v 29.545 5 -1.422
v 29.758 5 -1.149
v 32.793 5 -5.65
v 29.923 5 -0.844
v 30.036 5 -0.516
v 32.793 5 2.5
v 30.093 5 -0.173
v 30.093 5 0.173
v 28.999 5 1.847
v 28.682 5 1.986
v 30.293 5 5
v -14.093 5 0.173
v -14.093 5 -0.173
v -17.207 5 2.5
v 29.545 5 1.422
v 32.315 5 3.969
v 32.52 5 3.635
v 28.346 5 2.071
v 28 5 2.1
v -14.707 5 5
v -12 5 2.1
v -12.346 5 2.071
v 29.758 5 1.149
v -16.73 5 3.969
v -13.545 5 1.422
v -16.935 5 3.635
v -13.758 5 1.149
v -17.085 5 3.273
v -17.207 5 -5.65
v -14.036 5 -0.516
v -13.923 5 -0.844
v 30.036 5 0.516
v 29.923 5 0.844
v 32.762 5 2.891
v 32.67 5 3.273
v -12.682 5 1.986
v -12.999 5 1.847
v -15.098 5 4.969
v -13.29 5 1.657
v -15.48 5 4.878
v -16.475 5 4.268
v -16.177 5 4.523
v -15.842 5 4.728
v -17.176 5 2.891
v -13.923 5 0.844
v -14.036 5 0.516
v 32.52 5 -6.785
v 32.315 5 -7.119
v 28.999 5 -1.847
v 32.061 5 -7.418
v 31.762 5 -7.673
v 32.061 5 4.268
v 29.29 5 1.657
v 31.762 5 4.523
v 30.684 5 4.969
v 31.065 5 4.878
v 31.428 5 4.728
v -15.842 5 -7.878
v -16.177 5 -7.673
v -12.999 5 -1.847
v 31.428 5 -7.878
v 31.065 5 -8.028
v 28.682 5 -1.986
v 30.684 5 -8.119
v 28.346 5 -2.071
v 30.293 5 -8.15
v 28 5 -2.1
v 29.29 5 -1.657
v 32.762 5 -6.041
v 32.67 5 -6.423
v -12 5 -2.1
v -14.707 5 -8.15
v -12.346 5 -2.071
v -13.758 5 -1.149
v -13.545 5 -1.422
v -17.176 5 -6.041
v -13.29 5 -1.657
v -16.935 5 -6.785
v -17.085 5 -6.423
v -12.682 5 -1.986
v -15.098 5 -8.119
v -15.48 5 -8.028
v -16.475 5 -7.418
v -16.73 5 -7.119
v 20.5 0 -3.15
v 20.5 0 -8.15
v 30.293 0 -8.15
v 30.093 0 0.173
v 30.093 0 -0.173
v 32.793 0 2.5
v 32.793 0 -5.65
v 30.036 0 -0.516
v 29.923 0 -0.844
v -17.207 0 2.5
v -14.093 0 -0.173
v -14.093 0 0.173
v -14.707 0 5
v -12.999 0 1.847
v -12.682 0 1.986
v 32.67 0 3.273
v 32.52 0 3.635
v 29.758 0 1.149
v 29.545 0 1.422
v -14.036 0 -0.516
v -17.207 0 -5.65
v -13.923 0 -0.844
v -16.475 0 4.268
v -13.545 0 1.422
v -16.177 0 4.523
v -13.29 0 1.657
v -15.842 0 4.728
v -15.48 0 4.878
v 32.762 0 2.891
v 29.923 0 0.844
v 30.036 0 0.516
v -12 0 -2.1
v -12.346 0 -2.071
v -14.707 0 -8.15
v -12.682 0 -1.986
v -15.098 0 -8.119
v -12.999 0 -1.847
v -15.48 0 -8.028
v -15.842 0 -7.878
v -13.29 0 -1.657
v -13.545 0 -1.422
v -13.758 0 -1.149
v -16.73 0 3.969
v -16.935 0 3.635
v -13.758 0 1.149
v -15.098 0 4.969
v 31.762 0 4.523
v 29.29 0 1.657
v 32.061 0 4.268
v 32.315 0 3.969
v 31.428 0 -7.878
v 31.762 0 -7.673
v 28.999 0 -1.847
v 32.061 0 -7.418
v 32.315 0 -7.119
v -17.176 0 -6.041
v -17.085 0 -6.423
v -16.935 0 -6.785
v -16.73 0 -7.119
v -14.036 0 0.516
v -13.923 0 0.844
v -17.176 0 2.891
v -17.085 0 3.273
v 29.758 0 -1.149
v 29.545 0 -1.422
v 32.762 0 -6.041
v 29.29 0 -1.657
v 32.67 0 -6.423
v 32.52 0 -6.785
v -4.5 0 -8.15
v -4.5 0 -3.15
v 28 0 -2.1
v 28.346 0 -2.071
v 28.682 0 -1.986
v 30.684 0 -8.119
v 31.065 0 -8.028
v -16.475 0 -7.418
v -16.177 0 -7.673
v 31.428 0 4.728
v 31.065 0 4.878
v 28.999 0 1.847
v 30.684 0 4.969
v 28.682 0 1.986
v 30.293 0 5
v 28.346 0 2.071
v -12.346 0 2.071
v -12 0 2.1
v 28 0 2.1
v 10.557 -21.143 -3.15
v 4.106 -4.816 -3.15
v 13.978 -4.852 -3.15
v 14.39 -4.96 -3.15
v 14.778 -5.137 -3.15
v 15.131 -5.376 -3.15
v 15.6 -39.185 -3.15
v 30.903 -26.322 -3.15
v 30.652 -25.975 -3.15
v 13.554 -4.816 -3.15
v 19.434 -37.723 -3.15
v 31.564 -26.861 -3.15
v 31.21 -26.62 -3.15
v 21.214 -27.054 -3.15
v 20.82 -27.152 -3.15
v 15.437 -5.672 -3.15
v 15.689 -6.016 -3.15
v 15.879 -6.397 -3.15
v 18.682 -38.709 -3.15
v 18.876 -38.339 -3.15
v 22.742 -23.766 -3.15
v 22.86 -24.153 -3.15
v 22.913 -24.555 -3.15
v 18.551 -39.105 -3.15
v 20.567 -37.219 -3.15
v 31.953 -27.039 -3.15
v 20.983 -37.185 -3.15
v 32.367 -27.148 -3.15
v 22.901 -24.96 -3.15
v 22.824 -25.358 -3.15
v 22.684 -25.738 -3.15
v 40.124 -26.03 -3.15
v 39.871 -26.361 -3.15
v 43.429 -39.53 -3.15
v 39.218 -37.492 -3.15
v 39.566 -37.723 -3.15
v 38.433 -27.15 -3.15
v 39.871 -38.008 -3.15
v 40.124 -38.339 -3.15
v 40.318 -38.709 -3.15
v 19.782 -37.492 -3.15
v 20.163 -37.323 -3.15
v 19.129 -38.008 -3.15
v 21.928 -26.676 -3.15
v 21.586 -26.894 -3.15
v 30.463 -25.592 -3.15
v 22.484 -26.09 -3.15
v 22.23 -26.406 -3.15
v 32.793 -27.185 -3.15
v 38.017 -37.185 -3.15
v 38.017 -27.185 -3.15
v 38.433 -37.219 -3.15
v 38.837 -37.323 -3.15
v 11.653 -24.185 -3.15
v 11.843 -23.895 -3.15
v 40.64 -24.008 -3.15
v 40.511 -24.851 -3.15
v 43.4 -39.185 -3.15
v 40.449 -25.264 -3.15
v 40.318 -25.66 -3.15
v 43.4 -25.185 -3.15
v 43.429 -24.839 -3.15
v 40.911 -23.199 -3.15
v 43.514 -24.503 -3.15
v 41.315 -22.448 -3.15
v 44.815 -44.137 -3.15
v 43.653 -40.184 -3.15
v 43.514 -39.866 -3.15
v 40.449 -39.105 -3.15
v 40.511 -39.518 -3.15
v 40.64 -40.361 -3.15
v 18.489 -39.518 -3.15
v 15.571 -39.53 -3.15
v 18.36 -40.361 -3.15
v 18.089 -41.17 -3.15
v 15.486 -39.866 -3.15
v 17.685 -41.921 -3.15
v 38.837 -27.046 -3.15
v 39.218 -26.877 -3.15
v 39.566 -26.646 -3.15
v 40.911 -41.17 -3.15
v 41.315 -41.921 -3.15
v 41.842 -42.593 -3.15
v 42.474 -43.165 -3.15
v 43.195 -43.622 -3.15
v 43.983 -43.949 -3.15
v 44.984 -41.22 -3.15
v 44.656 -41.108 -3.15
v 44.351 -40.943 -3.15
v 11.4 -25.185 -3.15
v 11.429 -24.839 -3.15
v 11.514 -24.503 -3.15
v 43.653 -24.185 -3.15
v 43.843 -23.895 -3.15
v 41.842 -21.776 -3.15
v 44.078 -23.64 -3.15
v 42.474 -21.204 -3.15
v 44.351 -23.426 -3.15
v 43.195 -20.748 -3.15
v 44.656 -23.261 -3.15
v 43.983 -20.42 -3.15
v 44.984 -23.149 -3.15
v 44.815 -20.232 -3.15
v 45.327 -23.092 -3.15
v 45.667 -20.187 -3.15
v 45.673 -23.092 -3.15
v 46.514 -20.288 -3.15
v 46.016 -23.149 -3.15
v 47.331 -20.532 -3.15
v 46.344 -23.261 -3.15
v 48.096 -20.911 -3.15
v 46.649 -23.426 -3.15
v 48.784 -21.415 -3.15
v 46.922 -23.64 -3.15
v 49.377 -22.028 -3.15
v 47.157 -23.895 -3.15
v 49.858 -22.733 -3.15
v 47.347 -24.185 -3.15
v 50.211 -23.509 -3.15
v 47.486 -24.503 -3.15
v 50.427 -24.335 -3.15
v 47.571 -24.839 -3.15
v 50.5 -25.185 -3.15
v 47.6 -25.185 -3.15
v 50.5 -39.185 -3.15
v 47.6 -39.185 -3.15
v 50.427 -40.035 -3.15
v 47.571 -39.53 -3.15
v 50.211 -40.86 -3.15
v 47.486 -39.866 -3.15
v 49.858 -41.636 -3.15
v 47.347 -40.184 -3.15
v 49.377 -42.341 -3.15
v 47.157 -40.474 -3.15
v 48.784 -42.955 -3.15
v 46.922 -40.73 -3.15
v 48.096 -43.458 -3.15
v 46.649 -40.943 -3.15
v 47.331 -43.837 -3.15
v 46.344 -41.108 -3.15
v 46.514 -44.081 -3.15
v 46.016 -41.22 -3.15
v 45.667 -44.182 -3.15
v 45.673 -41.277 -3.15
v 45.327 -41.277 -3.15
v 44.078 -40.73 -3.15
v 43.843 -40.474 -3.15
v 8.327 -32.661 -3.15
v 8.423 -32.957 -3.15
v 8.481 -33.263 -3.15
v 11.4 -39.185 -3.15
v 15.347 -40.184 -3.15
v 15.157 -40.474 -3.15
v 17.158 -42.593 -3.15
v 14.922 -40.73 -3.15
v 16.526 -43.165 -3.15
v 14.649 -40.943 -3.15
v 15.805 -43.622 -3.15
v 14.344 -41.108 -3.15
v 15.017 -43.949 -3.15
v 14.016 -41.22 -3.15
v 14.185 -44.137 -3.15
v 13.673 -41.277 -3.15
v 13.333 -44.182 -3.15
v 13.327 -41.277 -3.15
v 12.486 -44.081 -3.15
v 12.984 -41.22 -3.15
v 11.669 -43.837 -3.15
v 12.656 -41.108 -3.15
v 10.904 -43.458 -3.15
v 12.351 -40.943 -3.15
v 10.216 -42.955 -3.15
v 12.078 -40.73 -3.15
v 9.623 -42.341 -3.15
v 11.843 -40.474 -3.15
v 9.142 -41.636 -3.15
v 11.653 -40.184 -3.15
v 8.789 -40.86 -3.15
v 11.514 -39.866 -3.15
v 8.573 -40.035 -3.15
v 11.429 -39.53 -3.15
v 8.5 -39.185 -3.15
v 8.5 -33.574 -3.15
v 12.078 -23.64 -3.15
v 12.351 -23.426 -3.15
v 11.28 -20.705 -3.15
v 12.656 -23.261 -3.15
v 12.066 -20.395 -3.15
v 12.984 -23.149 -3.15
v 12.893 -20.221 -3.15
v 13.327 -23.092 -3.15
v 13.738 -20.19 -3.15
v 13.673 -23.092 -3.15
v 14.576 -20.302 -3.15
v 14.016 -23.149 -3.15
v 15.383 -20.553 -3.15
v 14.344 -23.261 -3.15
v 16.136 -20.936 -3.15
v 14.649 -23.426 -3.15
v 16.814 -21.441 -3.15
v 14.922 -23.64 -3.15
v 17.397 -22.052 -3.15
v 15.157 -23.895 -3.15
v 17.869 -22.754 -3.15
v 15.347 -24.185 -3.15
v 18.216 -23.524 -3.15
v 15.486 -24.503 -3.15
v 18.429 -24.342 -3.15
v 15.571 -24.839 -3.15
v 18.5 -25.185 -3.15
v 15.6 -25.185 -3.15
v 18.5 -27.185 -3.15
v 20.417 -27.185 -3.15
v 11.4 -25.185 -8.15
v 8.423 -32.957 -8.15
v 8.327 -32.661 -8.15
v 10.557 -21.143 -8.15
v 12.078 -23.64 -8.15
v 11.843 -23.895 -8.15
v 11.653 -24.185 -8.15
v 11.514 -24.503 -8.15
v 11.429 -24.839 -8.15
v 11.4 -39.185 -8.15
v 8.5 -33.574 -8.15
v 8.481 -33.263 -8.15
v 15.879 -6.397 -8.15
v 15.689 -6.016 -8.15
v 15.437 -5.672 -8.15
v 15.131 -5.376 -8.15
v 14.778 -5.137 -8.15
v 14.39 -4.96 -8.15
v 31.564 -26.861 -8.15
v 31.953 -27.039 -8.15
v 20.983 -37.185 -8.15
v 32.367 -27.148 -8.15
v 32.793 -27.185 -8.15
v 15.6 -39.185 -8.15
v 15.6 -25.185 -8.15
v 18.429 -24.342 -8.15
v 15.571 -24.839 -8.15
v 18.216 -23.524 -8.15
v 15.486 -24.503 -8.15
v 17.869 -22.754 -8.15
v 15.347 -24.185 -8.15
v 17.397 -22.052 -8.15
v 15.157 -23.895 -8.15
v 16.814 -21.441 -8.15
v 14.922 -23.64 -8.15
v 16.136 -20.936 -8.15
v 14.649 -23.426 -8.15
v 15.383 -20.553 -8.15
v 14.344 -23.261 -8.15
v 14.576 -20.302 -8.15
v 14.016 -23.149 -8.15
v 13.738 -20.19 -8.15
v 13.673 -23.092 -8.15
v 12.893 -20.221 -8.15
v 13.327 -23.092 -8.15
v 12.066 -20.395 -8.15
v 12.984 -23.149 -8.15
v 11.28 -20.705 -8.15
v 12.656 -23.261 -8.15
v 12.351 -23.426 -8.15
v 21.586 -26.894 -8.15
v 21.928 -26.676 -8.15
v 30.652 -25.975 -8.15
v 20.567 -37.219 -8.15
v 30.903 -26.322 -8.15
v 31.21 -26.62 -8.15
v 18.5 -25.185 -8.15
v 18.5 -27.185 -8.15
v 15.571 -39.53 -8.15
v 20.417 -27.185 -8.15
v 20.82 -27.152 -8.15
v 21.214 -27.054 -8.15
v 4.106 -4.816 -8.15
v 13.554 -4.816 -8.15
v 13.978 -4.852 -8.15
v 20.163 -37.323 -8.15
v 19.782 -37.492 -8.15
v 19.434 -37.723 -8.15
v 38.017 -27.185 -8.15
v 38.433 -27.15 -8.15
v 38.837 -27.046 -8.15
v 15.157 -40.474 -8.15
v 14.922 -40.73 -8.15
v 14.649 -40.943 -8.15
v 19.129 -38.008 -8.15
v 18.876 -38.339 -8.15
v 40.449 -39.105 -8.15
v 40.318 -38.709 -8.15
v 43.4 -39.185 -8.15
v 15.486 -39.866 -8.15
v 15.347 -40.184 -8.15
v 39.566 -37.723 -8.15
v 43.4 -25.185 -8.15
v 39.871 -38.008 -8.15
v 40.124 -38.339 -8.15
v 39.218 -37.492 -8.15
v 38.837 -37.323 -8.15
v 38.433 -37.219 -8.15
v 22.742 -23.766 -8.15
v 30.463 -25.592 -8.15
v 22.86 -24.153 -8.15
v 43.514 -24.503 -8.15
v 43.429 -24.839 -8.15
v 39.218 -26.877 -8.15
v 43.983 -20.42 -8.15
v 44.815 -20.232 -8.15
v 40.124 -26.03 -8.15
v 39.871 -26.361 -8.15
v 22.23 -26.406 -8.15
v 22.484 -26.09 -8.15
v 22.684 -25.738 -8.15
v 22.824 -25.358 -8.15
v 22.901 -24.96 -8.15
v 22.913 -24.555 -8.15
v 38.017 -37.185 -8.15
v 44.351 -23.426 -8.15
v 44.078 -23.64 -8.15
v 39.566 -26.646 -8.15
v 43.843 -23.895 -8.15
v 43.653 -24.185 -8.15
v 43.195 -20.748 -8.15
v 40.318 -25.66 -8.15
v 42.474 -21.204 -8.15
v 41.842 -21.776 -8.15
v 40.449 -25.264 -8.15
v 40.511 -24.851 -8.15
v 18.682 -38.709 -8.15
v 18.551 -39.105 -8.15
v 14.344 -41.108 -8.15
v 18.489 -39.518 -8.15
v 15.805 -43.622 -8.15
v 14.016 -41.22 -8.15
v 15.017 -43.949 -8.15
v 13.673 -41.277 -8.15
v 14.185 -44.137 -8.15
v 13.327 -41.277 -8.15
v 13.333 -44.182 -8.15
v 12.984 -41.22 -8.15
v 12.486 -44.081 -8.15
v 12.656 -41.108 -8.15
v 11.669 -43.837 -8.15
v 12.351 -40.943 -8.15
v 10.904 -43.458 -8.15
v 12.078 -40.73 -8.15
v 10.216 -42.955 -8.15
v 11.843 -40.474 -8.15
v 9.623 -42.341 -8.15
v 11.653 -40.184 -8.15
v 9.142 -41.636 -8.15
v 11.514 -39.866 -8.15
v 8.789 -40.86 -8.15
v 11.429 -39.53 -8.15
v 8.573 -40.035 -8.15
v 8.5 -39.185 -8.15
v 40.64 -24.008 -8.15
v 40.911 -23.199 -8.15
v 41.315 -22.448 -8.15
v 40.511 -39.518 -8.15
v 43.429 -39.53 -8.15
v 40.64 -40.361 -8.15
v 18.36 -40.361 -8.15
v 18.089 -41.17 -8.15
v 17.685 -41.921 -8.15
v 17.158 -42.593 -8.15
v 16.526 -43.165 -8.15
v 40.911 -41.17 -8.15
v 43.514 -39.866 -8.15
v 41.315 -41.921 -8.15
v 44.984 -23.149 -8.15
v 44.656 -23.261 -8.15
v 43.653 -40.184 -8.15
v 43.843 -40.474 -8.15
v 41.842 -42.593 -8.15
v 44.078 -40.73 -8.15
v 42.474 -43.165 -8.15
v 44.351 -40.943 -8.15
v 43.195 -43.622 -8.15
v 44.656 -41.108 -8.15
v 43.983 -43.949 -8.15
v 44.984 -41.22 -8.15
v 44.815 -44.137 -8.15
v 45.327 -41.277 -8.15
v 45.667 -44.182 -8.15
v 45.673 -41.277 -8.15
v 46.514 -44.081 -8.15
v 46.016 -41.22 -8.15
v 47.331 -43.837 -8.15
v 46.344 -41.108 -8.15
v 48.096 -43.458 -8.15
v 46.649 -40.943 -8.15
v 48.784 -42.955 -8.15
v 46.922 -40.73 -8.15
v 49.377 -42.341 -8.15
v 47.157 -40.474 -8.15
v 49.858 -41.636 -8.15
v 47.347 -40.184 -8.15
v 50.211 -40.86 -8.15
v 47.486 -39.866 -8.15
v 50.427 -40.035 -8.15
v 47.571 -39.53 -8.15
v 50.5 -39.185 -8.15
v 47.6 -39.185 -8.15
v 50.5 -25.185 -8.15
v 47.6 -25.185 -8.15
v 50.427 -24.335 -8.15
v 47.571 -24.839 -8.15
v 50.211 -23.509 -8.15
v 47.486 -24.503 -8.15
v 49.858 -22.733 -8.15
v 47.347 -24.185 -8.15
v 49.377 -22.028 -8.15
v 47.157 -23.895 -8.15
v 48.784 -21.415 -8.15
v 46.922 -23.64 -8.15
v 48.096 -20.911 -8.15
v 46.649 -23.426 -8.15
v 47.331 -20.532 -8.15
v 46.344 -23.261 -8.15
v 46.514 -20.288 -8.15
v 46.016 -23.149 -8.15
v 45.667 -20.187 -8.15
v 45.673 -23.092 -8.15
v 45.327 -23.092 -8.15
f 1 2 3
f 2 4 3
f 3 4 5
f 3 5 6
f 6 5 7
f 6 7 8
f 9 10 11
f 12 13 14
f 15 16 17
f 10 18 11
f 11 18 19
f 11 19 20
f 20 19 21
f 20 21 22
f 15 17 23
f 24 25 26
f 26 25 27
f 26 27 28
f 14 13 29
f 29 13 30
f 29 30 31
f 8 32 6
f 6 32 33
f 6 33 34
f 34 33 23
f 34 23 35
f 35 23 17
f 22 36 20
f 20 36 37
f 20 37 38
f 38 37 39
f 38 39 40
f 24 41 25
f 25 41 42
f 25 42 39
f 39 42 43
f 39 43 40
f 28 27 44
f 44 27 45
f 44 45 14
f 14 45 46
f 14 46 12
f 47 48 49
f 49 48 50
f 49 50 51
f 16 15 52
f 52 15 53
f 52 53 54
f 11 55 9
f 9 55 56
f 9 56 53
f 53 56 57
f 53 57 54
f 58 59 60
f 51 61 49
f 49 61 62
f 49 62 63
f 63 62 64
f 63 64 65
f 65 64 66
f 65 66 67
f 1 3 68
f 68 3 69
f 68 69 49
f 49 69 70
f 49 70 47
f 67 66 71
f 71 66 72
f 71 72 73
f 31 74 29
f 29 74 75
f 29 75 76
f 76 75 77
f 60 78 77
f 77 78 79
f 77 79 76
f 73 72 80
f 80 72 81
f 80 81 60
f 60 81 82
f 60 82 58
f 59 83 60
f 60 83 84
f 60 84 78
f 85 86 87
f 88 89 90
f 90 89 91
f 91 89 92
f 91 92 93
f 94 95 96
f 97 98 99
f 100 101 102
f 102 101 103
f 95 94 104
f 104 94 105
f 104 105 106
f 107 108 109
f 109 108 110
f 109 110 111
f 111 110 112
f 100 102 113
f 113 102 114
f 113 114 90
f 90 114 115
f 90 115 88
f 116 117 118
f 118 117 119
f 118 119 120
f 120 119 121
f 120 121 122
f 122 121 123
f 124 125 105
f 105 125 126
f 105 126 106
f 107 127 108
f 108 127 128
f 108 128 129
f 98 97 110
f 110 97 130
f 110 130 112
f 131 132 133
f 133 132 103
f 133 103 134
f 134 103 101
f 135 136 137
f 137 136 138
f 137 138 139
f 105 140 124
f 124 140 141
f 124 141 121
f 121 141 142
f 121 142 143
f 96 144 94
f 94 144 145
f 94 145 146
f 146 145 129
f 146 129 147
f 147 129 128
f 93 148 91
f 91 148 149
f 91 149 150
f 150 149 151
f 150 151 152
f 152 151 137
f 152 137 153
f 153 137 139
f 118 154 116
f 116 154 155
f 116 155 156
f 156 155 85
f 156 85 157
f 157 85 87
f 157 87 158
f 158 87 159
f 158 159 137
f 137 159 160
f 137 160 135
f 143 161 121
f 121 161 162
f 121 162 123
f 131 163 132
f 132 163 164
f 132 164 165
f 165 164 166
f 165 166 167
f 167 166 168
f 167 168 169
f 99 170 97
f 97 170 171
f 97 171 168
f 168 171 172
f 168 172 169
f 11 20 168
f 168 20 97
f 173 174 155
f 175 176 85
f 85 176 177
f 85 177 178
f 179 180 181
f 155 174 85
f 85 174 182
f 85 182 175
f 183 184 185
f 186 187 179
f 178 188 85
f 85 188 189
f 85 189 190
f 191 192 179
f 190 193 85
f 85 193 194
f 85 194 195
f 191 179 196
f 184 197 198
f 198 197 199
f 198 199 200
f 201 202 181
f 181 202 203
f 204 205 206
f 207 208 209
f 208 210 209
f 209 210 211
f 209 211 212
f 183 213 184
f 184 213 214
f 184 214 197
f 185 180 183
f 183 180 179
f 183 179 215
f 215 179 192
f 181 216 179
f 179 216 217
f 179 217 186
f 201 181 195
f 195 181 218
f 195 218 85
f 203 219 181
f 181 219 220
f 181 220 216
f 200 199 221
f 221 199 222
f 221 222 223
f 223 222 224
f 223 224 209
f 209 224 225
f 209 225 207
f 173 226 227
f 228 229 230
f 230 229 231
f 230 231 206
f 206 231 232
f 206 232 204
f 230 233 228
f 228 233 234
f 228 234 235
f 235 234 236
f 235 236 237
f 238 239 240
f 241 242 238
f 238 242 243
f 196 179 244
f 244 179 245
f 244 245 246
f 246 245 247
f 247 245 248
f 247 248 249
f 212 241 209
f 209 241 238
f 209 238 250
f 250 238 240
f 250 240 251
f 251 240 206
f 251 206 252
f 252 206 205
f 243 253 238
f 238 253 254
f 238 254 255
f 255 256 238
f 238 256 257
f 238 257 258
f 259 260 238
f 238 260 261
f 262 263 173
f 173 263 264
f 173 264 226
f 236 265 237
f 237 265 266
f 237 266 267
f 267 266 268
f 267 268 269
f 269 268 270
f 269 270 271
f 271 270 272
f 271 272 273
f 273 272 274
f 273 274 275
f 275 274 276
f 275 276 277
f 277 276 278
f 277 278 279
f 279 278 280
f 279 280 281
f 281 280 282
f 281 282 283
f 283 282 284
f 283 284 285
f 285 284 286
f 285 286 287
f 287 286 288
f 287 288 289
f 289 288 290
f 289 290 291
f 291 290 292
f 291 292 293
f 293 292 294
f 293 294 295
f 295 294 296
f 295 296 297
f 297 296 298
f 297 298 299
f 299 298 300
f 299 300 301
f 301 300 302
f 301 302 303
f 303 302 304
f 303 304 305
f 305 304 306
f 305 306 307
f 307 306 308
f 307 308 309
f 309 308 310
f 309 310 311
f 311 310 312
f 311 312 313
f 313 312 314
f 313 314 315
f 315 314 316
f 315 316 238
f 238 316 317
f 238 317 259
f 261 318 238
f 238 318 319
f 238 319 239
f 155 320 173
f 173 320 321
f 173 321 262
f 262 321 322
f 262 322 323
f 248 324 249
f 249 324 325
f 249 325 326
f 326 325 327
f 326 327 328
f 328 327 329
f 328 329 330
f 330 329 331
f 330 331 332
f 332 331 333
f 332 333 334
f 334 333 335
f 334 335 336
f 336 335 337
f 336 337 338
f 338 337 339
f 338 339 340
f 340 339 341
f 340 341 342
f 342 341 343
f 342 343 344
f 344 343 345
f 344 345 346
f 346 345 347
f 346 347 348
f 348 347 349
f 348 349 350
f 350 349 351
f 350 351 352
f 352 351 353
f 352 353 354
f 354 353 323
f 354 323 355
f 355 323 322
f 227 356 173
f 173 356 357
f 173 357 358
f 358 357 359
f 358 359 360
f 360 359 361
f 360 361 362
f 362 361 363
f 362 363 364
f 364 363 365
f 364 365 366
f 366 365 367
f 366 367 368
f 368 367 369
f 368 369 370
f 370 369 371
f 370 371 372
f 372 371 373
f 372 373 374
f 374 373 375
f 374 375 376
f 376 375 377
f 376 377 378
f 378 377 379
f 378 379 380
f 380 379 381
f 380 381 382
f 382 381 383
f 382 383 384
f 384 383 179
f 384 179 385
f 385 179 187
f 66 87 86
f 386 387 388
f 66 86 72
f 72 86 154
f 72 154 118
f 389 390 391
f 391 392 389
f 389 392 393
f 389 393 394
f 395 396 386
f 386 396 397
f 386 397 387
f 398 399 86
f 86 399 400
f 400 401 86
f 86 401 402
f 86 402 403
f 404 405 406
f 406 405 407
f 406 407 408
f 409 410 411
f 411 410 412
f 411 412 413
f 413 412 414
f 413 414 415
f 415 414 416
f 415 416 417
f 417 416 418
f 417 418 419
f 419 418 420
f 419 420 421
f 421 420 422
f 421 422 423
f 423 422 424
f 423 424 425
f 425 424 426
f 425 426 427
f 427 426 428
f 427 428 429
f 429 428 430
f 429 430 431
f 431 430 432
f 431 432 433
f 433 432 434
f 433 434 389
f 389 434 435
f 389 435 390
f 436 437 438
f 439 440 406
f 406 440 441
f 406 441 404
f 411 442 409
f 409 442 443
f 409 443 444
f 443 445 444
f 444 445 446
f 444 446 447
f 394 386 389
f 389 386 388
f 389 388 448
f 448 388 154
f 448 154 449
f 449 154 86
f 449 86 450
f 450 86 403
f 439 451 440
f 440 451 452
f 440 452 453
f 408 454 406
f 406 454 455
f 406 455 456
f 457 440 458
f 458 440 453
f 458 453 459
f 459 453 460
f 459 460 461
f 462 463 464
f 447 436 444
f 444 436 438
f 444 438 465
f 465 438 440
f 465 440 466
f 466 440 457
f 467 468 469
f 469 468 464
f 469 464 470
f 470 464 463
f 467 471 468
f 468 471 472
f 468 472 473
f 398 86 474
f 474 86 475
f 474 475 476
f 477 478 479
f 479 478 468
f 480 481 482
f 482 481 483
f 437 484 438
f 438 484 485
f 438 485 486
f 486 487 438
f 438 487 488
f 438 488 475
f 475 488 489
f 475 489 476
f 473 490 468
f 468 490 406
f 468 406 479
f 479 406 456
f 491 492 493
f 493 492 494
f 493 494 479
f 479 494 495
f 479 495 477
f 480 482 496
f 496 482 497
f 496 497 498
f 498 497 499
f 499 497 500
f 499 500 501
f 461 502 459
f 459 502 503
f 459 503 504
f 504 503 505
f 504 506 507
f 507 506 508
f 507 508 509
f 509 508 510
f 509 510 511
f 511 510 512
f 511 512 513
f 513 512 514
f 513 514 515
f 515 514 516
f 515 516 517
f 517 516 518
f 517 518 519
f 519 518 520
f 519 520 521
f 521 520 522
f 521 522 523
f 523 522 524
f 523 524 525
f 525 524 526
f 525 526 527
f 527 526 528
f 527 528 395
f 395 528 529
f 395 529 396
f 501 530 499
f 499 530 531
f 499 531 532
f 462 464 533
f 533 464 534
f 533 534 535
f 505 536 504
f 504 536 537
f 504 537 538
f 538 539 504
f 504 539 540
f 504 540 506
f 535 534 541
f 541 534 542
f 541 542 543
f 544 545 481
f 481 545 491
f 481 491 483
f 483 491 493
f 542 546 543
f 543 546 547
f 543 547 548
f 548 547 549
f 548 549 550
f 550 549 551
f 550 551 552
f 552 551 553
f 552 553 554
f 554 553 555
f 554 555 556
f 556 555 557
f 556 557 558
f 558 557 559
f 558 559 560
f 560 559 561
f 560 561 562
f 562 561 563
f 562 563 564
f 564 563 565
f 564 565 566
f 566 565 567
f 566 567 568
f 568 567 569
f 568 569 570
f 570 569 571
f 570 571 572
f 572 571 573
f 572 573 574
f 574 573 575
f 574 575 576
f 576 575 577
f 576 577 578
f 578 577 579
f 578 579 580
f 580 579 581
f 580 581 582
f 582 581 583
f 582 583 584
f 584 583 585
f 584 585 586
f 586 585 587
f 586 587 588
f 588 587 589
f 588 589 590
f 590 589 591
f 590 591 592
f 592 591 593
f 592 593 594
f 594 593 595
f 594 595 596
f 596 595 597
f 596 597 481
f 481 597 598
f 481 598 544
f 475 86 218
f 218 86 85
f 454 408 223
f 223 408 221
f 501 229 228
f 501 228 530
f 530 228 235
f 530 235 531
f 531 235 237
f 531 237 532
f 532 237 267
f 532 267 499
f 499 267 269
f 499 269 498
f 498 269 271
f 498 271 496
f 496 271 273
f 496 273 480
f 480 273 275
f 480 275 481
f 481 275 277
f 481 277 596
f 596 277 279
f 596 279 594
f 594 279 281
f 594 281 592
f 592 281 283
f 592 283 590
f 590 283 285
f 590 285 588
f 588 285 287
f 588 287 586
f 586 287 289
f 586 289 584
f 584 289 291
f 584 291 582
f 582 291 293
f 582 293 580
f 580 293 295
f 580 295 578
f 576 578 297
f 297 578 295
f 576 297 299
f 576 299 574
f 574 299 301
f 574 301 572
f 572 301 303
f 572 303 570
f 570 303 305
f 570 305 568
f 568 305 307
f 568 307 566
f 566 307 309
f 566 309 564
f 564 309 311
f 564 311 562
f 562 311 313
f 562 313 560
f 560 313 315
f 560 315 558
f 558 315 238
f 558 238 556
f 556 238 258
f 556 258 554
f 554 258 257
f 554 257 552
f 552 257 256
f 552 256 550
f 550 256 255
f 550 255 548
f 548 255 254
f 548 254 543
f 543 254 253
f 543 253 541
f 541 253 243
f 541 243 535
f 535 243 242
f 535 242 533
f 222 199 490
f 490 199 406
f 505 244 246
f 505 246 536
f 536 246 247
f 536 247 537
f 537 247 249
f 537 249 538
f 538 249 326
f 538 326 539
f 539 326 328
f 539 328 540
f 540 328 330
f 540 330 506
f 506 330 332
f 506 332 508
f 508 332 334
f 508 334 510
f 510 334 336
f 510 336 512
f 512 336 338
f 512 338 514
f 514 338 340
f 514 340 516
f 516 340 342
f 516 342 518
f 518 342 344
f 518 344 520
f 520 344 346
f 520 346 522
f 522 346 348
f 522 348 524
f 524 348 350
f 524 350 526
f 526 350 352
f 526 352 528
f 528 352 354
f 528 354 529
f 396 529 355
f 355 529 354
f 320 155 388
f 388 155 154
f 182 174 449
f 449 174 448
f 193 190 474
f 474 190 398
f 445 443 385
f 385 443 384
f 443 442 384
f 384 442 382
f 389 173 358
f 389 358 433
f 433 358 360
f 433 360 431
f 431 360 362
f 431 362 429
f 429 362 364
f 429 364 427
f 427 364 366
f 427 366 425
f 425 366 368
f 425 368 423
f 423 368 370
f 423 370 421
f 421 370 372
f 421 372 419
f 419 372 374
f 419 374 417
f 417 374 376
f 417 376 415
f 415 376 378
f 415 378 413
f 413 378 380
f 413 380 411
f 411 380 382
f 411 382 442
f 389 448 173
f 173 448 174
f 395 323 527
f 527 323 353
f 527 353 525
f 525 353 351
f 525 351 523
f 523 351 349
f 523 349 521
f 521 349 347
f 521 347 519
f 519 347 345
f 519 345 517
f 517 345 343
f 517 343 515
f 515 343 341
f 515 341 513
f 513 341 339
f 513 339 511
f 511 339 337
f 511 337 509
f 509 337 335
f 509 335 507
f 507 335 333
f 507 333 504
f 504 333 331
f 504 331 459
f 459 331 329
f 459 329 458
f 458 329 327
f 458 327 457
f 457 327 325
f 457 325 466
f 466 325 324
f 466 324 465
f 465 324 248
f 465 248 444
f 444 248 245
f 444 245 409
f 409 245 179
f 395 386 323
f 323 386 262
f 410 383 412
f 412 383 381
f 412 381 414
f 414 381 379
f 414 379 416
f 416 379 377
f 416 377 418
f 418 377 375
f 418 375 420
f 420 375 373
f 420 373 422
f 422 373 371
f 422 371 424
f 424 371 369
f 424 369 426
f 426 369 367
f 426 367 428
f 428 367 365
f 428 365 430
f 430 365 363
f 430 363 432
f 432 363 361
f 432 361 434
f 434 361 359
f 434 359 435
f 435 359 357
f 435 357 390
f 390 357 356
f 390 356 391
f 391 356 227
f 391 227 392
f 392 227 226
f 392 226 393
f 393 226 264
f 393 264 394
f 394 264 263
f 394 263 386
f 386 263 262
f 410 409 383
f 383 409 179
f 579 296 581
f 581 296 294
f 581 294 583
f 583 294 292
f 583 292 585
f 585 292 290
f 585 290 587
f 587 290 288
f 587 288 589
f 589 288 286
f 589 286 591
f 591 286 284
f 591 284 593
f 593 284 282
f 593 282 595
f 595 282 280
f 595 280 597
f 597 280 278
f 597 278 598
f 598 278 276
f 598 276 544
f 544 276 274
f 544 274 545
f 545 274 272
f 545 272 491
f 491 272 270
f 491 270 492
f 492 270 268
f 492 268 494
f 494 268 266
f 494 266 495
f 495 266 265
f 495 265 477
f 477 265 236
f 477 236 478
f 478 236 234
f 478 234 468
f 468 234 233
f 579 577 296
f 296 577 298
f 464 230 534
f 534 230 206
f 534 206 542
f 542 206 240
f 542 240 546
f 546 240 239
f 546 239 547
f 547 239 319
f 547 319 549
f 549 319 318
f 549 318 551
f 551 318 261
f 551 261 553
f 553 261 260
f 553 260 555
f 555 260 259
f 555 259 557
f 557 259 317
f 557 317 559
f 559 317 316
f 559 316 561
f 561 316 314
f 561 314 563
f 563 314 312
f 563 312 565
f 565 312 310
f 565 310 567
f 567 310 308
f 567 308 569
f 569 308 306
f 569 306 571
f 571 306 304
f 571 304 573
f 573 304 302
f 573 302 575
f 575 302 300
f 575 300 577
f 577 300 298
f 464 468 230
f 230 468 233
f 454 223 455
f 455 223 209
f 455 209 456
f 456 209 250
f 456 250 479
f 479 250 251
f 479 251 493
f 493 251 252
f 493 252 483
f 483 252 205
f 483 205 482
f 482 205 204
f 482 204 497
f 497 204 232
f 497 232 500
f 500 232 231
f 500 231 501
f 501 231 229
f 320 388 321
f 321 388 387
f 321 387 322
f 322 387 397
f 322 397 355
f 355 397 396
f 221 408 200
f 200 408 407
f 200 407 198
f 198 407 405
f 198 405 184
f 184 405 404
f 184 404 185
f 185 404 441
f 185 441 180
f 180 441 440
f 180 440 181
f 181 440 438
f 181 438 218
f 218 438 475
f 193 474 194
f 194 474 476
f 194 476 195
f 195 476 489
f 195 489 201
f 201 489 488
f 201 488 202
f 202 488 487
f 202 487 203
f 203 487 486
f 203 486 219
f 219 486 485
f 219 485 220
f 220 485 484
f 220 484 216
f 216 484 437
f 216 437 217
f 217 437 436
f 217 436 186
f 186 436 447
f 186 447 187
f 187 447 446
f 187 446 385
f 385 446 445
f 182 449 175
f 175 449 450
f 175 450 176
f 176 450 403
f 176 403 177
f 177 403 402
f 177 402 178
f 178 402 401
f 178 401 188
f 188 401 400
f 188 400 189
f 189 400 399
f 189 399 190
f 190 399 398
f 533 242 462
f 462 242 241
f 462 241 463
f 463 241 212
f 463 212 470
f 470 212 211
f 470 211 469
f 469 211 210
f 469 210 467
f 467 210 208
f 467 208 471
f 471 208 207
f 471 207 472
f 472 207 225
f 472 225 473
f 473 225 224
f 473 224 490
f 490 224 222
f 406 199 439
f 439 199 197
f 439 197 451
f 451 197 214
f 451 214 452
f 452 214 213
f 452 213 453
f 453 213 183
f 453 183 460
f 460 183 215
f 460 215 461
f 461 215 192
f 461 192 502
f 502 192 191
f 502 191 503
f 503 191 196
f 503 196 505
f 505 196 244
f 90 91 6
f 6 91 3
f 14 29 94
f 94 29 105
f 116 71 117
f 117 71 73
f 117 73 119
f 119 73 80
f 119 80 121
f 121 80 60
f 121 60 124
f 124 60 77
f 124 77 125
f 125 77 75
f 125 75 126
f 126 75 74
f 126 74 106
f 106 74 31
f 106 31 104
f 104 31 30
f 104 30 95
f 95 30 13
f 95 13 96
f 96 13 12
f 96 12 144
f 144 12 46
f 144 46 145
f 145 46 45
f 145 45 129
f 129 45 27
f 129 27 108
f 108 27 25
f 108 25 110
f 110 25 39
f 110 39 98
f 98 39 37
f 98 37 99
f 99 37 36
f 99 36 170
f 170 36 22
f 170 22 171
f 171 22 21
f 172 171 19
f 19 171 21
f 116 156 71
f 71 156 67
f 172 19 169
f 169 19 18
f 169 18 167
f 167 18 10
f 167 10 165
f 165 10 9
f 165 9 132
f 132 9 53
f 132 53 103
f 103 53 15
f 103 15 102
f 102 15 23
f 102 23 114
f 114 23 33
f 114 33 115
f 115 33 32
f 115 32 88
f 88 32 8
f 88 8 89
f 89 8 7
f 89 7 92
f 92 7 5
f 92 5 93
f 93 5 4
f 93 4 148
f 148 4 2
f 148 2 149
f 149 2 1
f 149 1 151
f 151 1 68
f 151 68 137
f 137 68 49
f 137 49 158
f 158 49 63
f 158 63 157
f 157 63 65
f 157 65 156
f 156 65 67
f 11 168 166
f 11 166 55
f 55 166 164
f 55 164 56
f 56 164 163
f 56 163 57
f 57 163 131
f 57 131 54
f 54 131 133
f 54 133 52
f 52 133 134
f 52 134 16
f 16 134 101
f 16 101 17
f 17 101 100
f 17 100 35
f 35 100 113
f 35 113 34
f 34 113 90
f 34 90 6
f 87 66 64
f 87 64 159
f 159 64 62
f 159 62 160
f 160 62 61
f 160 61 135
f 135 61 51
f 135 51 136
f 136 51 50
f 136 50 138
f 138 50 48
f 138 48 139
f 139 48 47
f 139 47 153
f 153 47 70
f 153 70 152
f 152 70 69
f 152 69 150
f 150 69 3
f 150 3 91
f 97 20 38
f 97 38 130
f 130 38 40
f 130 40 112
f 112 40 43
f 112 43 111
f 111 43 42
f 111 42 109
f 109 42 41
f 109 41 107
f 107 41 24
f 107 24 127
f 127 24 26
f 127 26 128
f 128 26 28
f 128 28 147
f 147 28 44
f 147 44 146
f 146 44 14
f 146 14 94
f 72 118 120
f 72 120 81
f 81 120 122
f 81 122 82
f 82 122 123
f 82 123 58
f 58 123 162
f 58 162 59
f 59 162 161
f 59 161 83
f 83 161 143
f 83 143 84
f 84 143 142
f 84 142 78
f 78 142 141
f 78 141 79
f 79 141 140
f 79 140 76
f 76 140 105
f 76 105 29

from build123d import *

# Parameters (mm, degrees)
SKETCH1_W           = 25
SKETCH1_H           = 8.15
SKETCH1_R           = 2.1
BOSS_EXTRUDE1_DEPTH = 5
BOSS_EXTRUDE3_DEPTH = 5
FILLET1_R           = 2.5
SKETCH4_R           = 2.1
BOSS_EXTRUDE4_DEPTH = 5
CUT_EXTRUDE1_DEPTH  = 5
FILLET2_R           = 2.5


with BuildPart() as part:
    # Sketch1 → Boss-Extrude1 (new body)
    with BuildSketch(Plane(origin=(0, 0, 0), x_dir=(1, 0, 0), z_dir=(0, 1, 0))):
        with Locations((8, -0.925)):
            Rectangle(SKETCH1_W, SKETCH1_H)
        with Locations(Location((16, 0, 0), (0, 0, 270))):
            Circle(SKETCH1_R, mode=Mode.SUBTRACT)
        with Locations(Location((0, 0, 0), (0, 0, 270))):
            Circle(SKETCH1_R, mode=Mode.SUBTRACT)
    extrude(amount=BOSS_EXTRUDE1_DEPTH)

    # Sketch3 → Boss-Extrude3 (add)
    with BuildSketch(Plane(origin=(0, 0, -3.15), x_dir=(-1, 0, 0), z_dir=(0, 0, -1))):
        with BuildLine():
            Line((-20.5, 5), (4.5, 5))
            Line((4.5, 5), (4.5, 0))
            Line((4.5, 0), (-8.5, -33.101126286))
            Line((-8.5, -33.101126286), (-8.5, -39.18452209))
            ThreePointArc((-8.5, -39.18452209), (-13.5, -44.18452209), (-18.5, -39.18452209))
            Line((-18.5, -39.18452209), (-18.5, -37.18452209))
            Line((-18.5, -37.18452209), (-40.5, -37.18452209))
            Line((-40.5, -37.18452209), (-40.5, -39.18452209))
            ThreePointArc((-40.5, -39.18452209), (-45.5, -44.18452209), (-50.5, -39.18452209))
            Line((-50.5, -39.18452209), (-50.5, -25.18452209))
            ThreePointArc((-50.5, -25.18452209), (-45.5, -20.18452209), (-40.5, -25.18452209))
            Line((-40.5, -25.18452209), (-40.5, -27.18452209))
            Line((-40.5, -27.18452209), (-31.083364815, -27.18452209))
            Line((-31.083364815, -27.18452209), (-20.5, 0))
            Line((-20.5, 0), (-20.5, 5))
        make_face()
        with BuildLine():
            Line((-6.051156406, -4.816080861), (-15.253856658, -4.816080861))
            Line((-15.253856658, -4.816080861), (-24.092524325, -27.18452209))
            Line((-24.092524325, -27.18452209), (-18.5, -27.18452209))
            Line((-18.5, -27.18452209), (-18.5, -25.18452209))
            ThreePointArc((-18.5, -25.18452209), (-15.76759292, -20.728287991), (-10.55679106, -21.142552133))
            Line((-10.55679106, -21.142552133), (-4.105547887, -4.816080861))
            Line((-4.105547887, -4.816080861), (-6.051156406, -4.816080861))
        make_face(mode=Mode.SUBTRACT)
        with BuildLine():
            Line((-15.6, -39.18452209), (-15.6, -25.18452209))
            ThreePointArc((-15.6, -25.18452209), (-13.5, -23.08452209), (-11.4, -25.18452209))
            Line((-11.4, -25.18452209), (-11.4, -39.18452209))
            ThreePointArc((-11.4, -39.18452209), (-13.5, -41.28452209), (-15.6, -39.18452209))
        make_face(mode=Mode.SUBTRACT)
        with BuildLine():
            Line((-43.4, -25.18452209), (-43.4, -39.18452209))
            ThreePointArc((-43.4, -39.18452209), (-45.5, -41.28452209), (-47.6, -39.18452209))
            Line((-47.6, -39.18452209), (-47.6, -25.18452209))
            ThreePointArc((-47.6, -25.18452209), (-45.5, -23.08452209), (-43.4, -25.18452209))
        make_face(mode=Mode.SUBTRACT)
    extrude(amount=BOSS_EXTRUDE3_DEPTH)

    # Fillet1
    fillet1_edges = [part.edges().sort_by_distance(p)[0] for p in [
        (-4.5, 2.5, 5),
        (20.5, 2.5, 5),
        (31.083364815, -27.18452209, -5.65),
        (24.092524325, -27.18452209, -5.65),
        (15.253856658, -4.816080861, -5.65),
        (40.5, -27.18452209, -5.65),
        (8.5, -33.101126286, -5.65),
        (40.5, -37.18452209, -5.65),
        (18.5, -37.18452209, -5.65),
    ]]
    fillet(fillet1_edges, radius=FILLET1_R)

    # Sketch4 → Boss-Extrude4 (add)
    # profile 1 of 3: a face of its own
    with BuildSketch(Plane(origin=(0, 5, 0), x_dir=(1, 0, 0), z_dir=(0, 1, 0))):
        with BuildLine():
            ThreePointArc((20.5, -2.5), (19.767766953, -4.267766953), (18, -5))
            Line((18, -5), (32.792852268, -5))
            Line((32.792852268, -5), (32.792852268, 8.15))
            Line((32.792852268, 8.15), (20.5, 8.15))
            Line((20.5, 8.15), (20.5, -2.5))
        make_face()
    # profile 2 of 3: a face of its own
    with BuildSketch(Plane(origin=(0, 5, 0), x_dir=(1, 0, 0), z_dir=(0, 1, 0))):
        with BuildLine():
            Line((-2, -5), (18, -5))
            Line((18, -5), (18, -0.640312424))
            ThreePointArc((18, -0.640312424), (13.9, 0), (18, 0.640312424))
            Line((18, 0.640312424), (18, 8.15))
            Line((18, 8.15), (-4.5, 8.15))
            Line((-4.5, 8.15), (-4.5, -2.5))
            ThreePointArc((-4.5, -2.5), (-3.767766953, -4.267766953), (-2, -5))
        make_face()
        with Locations(Location((0, 0, 0), (0, 0, 270))):
            Circle(SKETCH4_R, mode=Mode.SUBTRACT)
    # profile 3 of 3: a face of its own
    with BuildSketch(Plane(origin=(0, 5, 0), x_dir=(1, 0, 0), z_dir=(0, 1, 0))):
        with BuildLine():
            Line((-17.207147732, -5), (-2, -5))
            ThreePointArc((-2, -5), (-3.767766953, -4.267766953), (-4.5, -2.5))
            Line((-4.5, -2.5), (-4.5, 8.15))
            Line((-4.5, 8.15), (-17.207147732, 8.15))
            Line((-17.207147732, 8.15), (-17.207147732, -5))
        make_face()
    extrude(amount=-BOSS_EXTRUDE4_DEPTH)

    # Sketch5 → Cut-Extrude1 (cut)
    with BuildSketch(Plane(origin=(0, 5, 0), x_dir=(1, 0, 0), z_dir=(0, 1, 0))):
        with BuildLine():
            Line((-12, 2.1), (28, 2.1))
            ThreePointArc((28, 2.1), (30.1, 0), (28, -2.1))
            Line((28, -2.1), (-12, -2.1))
            ThreePointArc((-12, -2.1), (-14.1, 0), (-12, 2.1))
        make_face()
    extrude(amount=-CUT_EXTRUDE1_DEPTH, mode=Mode.SUBTRACT)

    # Fillet2
    fillet2_edges = [part.edges().sort_by_distance(p)[0] for p in [
        (32.792852268, 2.5, 5),
        (32.792852268, 2.5, -8.15),
        (-17.207147732, 2.5, 5),
        (-17.207147732, 2.5, -8.15),
    ]]
    fillet(fillet2_edges, radius=FILLET2_R)


solid = part.part
